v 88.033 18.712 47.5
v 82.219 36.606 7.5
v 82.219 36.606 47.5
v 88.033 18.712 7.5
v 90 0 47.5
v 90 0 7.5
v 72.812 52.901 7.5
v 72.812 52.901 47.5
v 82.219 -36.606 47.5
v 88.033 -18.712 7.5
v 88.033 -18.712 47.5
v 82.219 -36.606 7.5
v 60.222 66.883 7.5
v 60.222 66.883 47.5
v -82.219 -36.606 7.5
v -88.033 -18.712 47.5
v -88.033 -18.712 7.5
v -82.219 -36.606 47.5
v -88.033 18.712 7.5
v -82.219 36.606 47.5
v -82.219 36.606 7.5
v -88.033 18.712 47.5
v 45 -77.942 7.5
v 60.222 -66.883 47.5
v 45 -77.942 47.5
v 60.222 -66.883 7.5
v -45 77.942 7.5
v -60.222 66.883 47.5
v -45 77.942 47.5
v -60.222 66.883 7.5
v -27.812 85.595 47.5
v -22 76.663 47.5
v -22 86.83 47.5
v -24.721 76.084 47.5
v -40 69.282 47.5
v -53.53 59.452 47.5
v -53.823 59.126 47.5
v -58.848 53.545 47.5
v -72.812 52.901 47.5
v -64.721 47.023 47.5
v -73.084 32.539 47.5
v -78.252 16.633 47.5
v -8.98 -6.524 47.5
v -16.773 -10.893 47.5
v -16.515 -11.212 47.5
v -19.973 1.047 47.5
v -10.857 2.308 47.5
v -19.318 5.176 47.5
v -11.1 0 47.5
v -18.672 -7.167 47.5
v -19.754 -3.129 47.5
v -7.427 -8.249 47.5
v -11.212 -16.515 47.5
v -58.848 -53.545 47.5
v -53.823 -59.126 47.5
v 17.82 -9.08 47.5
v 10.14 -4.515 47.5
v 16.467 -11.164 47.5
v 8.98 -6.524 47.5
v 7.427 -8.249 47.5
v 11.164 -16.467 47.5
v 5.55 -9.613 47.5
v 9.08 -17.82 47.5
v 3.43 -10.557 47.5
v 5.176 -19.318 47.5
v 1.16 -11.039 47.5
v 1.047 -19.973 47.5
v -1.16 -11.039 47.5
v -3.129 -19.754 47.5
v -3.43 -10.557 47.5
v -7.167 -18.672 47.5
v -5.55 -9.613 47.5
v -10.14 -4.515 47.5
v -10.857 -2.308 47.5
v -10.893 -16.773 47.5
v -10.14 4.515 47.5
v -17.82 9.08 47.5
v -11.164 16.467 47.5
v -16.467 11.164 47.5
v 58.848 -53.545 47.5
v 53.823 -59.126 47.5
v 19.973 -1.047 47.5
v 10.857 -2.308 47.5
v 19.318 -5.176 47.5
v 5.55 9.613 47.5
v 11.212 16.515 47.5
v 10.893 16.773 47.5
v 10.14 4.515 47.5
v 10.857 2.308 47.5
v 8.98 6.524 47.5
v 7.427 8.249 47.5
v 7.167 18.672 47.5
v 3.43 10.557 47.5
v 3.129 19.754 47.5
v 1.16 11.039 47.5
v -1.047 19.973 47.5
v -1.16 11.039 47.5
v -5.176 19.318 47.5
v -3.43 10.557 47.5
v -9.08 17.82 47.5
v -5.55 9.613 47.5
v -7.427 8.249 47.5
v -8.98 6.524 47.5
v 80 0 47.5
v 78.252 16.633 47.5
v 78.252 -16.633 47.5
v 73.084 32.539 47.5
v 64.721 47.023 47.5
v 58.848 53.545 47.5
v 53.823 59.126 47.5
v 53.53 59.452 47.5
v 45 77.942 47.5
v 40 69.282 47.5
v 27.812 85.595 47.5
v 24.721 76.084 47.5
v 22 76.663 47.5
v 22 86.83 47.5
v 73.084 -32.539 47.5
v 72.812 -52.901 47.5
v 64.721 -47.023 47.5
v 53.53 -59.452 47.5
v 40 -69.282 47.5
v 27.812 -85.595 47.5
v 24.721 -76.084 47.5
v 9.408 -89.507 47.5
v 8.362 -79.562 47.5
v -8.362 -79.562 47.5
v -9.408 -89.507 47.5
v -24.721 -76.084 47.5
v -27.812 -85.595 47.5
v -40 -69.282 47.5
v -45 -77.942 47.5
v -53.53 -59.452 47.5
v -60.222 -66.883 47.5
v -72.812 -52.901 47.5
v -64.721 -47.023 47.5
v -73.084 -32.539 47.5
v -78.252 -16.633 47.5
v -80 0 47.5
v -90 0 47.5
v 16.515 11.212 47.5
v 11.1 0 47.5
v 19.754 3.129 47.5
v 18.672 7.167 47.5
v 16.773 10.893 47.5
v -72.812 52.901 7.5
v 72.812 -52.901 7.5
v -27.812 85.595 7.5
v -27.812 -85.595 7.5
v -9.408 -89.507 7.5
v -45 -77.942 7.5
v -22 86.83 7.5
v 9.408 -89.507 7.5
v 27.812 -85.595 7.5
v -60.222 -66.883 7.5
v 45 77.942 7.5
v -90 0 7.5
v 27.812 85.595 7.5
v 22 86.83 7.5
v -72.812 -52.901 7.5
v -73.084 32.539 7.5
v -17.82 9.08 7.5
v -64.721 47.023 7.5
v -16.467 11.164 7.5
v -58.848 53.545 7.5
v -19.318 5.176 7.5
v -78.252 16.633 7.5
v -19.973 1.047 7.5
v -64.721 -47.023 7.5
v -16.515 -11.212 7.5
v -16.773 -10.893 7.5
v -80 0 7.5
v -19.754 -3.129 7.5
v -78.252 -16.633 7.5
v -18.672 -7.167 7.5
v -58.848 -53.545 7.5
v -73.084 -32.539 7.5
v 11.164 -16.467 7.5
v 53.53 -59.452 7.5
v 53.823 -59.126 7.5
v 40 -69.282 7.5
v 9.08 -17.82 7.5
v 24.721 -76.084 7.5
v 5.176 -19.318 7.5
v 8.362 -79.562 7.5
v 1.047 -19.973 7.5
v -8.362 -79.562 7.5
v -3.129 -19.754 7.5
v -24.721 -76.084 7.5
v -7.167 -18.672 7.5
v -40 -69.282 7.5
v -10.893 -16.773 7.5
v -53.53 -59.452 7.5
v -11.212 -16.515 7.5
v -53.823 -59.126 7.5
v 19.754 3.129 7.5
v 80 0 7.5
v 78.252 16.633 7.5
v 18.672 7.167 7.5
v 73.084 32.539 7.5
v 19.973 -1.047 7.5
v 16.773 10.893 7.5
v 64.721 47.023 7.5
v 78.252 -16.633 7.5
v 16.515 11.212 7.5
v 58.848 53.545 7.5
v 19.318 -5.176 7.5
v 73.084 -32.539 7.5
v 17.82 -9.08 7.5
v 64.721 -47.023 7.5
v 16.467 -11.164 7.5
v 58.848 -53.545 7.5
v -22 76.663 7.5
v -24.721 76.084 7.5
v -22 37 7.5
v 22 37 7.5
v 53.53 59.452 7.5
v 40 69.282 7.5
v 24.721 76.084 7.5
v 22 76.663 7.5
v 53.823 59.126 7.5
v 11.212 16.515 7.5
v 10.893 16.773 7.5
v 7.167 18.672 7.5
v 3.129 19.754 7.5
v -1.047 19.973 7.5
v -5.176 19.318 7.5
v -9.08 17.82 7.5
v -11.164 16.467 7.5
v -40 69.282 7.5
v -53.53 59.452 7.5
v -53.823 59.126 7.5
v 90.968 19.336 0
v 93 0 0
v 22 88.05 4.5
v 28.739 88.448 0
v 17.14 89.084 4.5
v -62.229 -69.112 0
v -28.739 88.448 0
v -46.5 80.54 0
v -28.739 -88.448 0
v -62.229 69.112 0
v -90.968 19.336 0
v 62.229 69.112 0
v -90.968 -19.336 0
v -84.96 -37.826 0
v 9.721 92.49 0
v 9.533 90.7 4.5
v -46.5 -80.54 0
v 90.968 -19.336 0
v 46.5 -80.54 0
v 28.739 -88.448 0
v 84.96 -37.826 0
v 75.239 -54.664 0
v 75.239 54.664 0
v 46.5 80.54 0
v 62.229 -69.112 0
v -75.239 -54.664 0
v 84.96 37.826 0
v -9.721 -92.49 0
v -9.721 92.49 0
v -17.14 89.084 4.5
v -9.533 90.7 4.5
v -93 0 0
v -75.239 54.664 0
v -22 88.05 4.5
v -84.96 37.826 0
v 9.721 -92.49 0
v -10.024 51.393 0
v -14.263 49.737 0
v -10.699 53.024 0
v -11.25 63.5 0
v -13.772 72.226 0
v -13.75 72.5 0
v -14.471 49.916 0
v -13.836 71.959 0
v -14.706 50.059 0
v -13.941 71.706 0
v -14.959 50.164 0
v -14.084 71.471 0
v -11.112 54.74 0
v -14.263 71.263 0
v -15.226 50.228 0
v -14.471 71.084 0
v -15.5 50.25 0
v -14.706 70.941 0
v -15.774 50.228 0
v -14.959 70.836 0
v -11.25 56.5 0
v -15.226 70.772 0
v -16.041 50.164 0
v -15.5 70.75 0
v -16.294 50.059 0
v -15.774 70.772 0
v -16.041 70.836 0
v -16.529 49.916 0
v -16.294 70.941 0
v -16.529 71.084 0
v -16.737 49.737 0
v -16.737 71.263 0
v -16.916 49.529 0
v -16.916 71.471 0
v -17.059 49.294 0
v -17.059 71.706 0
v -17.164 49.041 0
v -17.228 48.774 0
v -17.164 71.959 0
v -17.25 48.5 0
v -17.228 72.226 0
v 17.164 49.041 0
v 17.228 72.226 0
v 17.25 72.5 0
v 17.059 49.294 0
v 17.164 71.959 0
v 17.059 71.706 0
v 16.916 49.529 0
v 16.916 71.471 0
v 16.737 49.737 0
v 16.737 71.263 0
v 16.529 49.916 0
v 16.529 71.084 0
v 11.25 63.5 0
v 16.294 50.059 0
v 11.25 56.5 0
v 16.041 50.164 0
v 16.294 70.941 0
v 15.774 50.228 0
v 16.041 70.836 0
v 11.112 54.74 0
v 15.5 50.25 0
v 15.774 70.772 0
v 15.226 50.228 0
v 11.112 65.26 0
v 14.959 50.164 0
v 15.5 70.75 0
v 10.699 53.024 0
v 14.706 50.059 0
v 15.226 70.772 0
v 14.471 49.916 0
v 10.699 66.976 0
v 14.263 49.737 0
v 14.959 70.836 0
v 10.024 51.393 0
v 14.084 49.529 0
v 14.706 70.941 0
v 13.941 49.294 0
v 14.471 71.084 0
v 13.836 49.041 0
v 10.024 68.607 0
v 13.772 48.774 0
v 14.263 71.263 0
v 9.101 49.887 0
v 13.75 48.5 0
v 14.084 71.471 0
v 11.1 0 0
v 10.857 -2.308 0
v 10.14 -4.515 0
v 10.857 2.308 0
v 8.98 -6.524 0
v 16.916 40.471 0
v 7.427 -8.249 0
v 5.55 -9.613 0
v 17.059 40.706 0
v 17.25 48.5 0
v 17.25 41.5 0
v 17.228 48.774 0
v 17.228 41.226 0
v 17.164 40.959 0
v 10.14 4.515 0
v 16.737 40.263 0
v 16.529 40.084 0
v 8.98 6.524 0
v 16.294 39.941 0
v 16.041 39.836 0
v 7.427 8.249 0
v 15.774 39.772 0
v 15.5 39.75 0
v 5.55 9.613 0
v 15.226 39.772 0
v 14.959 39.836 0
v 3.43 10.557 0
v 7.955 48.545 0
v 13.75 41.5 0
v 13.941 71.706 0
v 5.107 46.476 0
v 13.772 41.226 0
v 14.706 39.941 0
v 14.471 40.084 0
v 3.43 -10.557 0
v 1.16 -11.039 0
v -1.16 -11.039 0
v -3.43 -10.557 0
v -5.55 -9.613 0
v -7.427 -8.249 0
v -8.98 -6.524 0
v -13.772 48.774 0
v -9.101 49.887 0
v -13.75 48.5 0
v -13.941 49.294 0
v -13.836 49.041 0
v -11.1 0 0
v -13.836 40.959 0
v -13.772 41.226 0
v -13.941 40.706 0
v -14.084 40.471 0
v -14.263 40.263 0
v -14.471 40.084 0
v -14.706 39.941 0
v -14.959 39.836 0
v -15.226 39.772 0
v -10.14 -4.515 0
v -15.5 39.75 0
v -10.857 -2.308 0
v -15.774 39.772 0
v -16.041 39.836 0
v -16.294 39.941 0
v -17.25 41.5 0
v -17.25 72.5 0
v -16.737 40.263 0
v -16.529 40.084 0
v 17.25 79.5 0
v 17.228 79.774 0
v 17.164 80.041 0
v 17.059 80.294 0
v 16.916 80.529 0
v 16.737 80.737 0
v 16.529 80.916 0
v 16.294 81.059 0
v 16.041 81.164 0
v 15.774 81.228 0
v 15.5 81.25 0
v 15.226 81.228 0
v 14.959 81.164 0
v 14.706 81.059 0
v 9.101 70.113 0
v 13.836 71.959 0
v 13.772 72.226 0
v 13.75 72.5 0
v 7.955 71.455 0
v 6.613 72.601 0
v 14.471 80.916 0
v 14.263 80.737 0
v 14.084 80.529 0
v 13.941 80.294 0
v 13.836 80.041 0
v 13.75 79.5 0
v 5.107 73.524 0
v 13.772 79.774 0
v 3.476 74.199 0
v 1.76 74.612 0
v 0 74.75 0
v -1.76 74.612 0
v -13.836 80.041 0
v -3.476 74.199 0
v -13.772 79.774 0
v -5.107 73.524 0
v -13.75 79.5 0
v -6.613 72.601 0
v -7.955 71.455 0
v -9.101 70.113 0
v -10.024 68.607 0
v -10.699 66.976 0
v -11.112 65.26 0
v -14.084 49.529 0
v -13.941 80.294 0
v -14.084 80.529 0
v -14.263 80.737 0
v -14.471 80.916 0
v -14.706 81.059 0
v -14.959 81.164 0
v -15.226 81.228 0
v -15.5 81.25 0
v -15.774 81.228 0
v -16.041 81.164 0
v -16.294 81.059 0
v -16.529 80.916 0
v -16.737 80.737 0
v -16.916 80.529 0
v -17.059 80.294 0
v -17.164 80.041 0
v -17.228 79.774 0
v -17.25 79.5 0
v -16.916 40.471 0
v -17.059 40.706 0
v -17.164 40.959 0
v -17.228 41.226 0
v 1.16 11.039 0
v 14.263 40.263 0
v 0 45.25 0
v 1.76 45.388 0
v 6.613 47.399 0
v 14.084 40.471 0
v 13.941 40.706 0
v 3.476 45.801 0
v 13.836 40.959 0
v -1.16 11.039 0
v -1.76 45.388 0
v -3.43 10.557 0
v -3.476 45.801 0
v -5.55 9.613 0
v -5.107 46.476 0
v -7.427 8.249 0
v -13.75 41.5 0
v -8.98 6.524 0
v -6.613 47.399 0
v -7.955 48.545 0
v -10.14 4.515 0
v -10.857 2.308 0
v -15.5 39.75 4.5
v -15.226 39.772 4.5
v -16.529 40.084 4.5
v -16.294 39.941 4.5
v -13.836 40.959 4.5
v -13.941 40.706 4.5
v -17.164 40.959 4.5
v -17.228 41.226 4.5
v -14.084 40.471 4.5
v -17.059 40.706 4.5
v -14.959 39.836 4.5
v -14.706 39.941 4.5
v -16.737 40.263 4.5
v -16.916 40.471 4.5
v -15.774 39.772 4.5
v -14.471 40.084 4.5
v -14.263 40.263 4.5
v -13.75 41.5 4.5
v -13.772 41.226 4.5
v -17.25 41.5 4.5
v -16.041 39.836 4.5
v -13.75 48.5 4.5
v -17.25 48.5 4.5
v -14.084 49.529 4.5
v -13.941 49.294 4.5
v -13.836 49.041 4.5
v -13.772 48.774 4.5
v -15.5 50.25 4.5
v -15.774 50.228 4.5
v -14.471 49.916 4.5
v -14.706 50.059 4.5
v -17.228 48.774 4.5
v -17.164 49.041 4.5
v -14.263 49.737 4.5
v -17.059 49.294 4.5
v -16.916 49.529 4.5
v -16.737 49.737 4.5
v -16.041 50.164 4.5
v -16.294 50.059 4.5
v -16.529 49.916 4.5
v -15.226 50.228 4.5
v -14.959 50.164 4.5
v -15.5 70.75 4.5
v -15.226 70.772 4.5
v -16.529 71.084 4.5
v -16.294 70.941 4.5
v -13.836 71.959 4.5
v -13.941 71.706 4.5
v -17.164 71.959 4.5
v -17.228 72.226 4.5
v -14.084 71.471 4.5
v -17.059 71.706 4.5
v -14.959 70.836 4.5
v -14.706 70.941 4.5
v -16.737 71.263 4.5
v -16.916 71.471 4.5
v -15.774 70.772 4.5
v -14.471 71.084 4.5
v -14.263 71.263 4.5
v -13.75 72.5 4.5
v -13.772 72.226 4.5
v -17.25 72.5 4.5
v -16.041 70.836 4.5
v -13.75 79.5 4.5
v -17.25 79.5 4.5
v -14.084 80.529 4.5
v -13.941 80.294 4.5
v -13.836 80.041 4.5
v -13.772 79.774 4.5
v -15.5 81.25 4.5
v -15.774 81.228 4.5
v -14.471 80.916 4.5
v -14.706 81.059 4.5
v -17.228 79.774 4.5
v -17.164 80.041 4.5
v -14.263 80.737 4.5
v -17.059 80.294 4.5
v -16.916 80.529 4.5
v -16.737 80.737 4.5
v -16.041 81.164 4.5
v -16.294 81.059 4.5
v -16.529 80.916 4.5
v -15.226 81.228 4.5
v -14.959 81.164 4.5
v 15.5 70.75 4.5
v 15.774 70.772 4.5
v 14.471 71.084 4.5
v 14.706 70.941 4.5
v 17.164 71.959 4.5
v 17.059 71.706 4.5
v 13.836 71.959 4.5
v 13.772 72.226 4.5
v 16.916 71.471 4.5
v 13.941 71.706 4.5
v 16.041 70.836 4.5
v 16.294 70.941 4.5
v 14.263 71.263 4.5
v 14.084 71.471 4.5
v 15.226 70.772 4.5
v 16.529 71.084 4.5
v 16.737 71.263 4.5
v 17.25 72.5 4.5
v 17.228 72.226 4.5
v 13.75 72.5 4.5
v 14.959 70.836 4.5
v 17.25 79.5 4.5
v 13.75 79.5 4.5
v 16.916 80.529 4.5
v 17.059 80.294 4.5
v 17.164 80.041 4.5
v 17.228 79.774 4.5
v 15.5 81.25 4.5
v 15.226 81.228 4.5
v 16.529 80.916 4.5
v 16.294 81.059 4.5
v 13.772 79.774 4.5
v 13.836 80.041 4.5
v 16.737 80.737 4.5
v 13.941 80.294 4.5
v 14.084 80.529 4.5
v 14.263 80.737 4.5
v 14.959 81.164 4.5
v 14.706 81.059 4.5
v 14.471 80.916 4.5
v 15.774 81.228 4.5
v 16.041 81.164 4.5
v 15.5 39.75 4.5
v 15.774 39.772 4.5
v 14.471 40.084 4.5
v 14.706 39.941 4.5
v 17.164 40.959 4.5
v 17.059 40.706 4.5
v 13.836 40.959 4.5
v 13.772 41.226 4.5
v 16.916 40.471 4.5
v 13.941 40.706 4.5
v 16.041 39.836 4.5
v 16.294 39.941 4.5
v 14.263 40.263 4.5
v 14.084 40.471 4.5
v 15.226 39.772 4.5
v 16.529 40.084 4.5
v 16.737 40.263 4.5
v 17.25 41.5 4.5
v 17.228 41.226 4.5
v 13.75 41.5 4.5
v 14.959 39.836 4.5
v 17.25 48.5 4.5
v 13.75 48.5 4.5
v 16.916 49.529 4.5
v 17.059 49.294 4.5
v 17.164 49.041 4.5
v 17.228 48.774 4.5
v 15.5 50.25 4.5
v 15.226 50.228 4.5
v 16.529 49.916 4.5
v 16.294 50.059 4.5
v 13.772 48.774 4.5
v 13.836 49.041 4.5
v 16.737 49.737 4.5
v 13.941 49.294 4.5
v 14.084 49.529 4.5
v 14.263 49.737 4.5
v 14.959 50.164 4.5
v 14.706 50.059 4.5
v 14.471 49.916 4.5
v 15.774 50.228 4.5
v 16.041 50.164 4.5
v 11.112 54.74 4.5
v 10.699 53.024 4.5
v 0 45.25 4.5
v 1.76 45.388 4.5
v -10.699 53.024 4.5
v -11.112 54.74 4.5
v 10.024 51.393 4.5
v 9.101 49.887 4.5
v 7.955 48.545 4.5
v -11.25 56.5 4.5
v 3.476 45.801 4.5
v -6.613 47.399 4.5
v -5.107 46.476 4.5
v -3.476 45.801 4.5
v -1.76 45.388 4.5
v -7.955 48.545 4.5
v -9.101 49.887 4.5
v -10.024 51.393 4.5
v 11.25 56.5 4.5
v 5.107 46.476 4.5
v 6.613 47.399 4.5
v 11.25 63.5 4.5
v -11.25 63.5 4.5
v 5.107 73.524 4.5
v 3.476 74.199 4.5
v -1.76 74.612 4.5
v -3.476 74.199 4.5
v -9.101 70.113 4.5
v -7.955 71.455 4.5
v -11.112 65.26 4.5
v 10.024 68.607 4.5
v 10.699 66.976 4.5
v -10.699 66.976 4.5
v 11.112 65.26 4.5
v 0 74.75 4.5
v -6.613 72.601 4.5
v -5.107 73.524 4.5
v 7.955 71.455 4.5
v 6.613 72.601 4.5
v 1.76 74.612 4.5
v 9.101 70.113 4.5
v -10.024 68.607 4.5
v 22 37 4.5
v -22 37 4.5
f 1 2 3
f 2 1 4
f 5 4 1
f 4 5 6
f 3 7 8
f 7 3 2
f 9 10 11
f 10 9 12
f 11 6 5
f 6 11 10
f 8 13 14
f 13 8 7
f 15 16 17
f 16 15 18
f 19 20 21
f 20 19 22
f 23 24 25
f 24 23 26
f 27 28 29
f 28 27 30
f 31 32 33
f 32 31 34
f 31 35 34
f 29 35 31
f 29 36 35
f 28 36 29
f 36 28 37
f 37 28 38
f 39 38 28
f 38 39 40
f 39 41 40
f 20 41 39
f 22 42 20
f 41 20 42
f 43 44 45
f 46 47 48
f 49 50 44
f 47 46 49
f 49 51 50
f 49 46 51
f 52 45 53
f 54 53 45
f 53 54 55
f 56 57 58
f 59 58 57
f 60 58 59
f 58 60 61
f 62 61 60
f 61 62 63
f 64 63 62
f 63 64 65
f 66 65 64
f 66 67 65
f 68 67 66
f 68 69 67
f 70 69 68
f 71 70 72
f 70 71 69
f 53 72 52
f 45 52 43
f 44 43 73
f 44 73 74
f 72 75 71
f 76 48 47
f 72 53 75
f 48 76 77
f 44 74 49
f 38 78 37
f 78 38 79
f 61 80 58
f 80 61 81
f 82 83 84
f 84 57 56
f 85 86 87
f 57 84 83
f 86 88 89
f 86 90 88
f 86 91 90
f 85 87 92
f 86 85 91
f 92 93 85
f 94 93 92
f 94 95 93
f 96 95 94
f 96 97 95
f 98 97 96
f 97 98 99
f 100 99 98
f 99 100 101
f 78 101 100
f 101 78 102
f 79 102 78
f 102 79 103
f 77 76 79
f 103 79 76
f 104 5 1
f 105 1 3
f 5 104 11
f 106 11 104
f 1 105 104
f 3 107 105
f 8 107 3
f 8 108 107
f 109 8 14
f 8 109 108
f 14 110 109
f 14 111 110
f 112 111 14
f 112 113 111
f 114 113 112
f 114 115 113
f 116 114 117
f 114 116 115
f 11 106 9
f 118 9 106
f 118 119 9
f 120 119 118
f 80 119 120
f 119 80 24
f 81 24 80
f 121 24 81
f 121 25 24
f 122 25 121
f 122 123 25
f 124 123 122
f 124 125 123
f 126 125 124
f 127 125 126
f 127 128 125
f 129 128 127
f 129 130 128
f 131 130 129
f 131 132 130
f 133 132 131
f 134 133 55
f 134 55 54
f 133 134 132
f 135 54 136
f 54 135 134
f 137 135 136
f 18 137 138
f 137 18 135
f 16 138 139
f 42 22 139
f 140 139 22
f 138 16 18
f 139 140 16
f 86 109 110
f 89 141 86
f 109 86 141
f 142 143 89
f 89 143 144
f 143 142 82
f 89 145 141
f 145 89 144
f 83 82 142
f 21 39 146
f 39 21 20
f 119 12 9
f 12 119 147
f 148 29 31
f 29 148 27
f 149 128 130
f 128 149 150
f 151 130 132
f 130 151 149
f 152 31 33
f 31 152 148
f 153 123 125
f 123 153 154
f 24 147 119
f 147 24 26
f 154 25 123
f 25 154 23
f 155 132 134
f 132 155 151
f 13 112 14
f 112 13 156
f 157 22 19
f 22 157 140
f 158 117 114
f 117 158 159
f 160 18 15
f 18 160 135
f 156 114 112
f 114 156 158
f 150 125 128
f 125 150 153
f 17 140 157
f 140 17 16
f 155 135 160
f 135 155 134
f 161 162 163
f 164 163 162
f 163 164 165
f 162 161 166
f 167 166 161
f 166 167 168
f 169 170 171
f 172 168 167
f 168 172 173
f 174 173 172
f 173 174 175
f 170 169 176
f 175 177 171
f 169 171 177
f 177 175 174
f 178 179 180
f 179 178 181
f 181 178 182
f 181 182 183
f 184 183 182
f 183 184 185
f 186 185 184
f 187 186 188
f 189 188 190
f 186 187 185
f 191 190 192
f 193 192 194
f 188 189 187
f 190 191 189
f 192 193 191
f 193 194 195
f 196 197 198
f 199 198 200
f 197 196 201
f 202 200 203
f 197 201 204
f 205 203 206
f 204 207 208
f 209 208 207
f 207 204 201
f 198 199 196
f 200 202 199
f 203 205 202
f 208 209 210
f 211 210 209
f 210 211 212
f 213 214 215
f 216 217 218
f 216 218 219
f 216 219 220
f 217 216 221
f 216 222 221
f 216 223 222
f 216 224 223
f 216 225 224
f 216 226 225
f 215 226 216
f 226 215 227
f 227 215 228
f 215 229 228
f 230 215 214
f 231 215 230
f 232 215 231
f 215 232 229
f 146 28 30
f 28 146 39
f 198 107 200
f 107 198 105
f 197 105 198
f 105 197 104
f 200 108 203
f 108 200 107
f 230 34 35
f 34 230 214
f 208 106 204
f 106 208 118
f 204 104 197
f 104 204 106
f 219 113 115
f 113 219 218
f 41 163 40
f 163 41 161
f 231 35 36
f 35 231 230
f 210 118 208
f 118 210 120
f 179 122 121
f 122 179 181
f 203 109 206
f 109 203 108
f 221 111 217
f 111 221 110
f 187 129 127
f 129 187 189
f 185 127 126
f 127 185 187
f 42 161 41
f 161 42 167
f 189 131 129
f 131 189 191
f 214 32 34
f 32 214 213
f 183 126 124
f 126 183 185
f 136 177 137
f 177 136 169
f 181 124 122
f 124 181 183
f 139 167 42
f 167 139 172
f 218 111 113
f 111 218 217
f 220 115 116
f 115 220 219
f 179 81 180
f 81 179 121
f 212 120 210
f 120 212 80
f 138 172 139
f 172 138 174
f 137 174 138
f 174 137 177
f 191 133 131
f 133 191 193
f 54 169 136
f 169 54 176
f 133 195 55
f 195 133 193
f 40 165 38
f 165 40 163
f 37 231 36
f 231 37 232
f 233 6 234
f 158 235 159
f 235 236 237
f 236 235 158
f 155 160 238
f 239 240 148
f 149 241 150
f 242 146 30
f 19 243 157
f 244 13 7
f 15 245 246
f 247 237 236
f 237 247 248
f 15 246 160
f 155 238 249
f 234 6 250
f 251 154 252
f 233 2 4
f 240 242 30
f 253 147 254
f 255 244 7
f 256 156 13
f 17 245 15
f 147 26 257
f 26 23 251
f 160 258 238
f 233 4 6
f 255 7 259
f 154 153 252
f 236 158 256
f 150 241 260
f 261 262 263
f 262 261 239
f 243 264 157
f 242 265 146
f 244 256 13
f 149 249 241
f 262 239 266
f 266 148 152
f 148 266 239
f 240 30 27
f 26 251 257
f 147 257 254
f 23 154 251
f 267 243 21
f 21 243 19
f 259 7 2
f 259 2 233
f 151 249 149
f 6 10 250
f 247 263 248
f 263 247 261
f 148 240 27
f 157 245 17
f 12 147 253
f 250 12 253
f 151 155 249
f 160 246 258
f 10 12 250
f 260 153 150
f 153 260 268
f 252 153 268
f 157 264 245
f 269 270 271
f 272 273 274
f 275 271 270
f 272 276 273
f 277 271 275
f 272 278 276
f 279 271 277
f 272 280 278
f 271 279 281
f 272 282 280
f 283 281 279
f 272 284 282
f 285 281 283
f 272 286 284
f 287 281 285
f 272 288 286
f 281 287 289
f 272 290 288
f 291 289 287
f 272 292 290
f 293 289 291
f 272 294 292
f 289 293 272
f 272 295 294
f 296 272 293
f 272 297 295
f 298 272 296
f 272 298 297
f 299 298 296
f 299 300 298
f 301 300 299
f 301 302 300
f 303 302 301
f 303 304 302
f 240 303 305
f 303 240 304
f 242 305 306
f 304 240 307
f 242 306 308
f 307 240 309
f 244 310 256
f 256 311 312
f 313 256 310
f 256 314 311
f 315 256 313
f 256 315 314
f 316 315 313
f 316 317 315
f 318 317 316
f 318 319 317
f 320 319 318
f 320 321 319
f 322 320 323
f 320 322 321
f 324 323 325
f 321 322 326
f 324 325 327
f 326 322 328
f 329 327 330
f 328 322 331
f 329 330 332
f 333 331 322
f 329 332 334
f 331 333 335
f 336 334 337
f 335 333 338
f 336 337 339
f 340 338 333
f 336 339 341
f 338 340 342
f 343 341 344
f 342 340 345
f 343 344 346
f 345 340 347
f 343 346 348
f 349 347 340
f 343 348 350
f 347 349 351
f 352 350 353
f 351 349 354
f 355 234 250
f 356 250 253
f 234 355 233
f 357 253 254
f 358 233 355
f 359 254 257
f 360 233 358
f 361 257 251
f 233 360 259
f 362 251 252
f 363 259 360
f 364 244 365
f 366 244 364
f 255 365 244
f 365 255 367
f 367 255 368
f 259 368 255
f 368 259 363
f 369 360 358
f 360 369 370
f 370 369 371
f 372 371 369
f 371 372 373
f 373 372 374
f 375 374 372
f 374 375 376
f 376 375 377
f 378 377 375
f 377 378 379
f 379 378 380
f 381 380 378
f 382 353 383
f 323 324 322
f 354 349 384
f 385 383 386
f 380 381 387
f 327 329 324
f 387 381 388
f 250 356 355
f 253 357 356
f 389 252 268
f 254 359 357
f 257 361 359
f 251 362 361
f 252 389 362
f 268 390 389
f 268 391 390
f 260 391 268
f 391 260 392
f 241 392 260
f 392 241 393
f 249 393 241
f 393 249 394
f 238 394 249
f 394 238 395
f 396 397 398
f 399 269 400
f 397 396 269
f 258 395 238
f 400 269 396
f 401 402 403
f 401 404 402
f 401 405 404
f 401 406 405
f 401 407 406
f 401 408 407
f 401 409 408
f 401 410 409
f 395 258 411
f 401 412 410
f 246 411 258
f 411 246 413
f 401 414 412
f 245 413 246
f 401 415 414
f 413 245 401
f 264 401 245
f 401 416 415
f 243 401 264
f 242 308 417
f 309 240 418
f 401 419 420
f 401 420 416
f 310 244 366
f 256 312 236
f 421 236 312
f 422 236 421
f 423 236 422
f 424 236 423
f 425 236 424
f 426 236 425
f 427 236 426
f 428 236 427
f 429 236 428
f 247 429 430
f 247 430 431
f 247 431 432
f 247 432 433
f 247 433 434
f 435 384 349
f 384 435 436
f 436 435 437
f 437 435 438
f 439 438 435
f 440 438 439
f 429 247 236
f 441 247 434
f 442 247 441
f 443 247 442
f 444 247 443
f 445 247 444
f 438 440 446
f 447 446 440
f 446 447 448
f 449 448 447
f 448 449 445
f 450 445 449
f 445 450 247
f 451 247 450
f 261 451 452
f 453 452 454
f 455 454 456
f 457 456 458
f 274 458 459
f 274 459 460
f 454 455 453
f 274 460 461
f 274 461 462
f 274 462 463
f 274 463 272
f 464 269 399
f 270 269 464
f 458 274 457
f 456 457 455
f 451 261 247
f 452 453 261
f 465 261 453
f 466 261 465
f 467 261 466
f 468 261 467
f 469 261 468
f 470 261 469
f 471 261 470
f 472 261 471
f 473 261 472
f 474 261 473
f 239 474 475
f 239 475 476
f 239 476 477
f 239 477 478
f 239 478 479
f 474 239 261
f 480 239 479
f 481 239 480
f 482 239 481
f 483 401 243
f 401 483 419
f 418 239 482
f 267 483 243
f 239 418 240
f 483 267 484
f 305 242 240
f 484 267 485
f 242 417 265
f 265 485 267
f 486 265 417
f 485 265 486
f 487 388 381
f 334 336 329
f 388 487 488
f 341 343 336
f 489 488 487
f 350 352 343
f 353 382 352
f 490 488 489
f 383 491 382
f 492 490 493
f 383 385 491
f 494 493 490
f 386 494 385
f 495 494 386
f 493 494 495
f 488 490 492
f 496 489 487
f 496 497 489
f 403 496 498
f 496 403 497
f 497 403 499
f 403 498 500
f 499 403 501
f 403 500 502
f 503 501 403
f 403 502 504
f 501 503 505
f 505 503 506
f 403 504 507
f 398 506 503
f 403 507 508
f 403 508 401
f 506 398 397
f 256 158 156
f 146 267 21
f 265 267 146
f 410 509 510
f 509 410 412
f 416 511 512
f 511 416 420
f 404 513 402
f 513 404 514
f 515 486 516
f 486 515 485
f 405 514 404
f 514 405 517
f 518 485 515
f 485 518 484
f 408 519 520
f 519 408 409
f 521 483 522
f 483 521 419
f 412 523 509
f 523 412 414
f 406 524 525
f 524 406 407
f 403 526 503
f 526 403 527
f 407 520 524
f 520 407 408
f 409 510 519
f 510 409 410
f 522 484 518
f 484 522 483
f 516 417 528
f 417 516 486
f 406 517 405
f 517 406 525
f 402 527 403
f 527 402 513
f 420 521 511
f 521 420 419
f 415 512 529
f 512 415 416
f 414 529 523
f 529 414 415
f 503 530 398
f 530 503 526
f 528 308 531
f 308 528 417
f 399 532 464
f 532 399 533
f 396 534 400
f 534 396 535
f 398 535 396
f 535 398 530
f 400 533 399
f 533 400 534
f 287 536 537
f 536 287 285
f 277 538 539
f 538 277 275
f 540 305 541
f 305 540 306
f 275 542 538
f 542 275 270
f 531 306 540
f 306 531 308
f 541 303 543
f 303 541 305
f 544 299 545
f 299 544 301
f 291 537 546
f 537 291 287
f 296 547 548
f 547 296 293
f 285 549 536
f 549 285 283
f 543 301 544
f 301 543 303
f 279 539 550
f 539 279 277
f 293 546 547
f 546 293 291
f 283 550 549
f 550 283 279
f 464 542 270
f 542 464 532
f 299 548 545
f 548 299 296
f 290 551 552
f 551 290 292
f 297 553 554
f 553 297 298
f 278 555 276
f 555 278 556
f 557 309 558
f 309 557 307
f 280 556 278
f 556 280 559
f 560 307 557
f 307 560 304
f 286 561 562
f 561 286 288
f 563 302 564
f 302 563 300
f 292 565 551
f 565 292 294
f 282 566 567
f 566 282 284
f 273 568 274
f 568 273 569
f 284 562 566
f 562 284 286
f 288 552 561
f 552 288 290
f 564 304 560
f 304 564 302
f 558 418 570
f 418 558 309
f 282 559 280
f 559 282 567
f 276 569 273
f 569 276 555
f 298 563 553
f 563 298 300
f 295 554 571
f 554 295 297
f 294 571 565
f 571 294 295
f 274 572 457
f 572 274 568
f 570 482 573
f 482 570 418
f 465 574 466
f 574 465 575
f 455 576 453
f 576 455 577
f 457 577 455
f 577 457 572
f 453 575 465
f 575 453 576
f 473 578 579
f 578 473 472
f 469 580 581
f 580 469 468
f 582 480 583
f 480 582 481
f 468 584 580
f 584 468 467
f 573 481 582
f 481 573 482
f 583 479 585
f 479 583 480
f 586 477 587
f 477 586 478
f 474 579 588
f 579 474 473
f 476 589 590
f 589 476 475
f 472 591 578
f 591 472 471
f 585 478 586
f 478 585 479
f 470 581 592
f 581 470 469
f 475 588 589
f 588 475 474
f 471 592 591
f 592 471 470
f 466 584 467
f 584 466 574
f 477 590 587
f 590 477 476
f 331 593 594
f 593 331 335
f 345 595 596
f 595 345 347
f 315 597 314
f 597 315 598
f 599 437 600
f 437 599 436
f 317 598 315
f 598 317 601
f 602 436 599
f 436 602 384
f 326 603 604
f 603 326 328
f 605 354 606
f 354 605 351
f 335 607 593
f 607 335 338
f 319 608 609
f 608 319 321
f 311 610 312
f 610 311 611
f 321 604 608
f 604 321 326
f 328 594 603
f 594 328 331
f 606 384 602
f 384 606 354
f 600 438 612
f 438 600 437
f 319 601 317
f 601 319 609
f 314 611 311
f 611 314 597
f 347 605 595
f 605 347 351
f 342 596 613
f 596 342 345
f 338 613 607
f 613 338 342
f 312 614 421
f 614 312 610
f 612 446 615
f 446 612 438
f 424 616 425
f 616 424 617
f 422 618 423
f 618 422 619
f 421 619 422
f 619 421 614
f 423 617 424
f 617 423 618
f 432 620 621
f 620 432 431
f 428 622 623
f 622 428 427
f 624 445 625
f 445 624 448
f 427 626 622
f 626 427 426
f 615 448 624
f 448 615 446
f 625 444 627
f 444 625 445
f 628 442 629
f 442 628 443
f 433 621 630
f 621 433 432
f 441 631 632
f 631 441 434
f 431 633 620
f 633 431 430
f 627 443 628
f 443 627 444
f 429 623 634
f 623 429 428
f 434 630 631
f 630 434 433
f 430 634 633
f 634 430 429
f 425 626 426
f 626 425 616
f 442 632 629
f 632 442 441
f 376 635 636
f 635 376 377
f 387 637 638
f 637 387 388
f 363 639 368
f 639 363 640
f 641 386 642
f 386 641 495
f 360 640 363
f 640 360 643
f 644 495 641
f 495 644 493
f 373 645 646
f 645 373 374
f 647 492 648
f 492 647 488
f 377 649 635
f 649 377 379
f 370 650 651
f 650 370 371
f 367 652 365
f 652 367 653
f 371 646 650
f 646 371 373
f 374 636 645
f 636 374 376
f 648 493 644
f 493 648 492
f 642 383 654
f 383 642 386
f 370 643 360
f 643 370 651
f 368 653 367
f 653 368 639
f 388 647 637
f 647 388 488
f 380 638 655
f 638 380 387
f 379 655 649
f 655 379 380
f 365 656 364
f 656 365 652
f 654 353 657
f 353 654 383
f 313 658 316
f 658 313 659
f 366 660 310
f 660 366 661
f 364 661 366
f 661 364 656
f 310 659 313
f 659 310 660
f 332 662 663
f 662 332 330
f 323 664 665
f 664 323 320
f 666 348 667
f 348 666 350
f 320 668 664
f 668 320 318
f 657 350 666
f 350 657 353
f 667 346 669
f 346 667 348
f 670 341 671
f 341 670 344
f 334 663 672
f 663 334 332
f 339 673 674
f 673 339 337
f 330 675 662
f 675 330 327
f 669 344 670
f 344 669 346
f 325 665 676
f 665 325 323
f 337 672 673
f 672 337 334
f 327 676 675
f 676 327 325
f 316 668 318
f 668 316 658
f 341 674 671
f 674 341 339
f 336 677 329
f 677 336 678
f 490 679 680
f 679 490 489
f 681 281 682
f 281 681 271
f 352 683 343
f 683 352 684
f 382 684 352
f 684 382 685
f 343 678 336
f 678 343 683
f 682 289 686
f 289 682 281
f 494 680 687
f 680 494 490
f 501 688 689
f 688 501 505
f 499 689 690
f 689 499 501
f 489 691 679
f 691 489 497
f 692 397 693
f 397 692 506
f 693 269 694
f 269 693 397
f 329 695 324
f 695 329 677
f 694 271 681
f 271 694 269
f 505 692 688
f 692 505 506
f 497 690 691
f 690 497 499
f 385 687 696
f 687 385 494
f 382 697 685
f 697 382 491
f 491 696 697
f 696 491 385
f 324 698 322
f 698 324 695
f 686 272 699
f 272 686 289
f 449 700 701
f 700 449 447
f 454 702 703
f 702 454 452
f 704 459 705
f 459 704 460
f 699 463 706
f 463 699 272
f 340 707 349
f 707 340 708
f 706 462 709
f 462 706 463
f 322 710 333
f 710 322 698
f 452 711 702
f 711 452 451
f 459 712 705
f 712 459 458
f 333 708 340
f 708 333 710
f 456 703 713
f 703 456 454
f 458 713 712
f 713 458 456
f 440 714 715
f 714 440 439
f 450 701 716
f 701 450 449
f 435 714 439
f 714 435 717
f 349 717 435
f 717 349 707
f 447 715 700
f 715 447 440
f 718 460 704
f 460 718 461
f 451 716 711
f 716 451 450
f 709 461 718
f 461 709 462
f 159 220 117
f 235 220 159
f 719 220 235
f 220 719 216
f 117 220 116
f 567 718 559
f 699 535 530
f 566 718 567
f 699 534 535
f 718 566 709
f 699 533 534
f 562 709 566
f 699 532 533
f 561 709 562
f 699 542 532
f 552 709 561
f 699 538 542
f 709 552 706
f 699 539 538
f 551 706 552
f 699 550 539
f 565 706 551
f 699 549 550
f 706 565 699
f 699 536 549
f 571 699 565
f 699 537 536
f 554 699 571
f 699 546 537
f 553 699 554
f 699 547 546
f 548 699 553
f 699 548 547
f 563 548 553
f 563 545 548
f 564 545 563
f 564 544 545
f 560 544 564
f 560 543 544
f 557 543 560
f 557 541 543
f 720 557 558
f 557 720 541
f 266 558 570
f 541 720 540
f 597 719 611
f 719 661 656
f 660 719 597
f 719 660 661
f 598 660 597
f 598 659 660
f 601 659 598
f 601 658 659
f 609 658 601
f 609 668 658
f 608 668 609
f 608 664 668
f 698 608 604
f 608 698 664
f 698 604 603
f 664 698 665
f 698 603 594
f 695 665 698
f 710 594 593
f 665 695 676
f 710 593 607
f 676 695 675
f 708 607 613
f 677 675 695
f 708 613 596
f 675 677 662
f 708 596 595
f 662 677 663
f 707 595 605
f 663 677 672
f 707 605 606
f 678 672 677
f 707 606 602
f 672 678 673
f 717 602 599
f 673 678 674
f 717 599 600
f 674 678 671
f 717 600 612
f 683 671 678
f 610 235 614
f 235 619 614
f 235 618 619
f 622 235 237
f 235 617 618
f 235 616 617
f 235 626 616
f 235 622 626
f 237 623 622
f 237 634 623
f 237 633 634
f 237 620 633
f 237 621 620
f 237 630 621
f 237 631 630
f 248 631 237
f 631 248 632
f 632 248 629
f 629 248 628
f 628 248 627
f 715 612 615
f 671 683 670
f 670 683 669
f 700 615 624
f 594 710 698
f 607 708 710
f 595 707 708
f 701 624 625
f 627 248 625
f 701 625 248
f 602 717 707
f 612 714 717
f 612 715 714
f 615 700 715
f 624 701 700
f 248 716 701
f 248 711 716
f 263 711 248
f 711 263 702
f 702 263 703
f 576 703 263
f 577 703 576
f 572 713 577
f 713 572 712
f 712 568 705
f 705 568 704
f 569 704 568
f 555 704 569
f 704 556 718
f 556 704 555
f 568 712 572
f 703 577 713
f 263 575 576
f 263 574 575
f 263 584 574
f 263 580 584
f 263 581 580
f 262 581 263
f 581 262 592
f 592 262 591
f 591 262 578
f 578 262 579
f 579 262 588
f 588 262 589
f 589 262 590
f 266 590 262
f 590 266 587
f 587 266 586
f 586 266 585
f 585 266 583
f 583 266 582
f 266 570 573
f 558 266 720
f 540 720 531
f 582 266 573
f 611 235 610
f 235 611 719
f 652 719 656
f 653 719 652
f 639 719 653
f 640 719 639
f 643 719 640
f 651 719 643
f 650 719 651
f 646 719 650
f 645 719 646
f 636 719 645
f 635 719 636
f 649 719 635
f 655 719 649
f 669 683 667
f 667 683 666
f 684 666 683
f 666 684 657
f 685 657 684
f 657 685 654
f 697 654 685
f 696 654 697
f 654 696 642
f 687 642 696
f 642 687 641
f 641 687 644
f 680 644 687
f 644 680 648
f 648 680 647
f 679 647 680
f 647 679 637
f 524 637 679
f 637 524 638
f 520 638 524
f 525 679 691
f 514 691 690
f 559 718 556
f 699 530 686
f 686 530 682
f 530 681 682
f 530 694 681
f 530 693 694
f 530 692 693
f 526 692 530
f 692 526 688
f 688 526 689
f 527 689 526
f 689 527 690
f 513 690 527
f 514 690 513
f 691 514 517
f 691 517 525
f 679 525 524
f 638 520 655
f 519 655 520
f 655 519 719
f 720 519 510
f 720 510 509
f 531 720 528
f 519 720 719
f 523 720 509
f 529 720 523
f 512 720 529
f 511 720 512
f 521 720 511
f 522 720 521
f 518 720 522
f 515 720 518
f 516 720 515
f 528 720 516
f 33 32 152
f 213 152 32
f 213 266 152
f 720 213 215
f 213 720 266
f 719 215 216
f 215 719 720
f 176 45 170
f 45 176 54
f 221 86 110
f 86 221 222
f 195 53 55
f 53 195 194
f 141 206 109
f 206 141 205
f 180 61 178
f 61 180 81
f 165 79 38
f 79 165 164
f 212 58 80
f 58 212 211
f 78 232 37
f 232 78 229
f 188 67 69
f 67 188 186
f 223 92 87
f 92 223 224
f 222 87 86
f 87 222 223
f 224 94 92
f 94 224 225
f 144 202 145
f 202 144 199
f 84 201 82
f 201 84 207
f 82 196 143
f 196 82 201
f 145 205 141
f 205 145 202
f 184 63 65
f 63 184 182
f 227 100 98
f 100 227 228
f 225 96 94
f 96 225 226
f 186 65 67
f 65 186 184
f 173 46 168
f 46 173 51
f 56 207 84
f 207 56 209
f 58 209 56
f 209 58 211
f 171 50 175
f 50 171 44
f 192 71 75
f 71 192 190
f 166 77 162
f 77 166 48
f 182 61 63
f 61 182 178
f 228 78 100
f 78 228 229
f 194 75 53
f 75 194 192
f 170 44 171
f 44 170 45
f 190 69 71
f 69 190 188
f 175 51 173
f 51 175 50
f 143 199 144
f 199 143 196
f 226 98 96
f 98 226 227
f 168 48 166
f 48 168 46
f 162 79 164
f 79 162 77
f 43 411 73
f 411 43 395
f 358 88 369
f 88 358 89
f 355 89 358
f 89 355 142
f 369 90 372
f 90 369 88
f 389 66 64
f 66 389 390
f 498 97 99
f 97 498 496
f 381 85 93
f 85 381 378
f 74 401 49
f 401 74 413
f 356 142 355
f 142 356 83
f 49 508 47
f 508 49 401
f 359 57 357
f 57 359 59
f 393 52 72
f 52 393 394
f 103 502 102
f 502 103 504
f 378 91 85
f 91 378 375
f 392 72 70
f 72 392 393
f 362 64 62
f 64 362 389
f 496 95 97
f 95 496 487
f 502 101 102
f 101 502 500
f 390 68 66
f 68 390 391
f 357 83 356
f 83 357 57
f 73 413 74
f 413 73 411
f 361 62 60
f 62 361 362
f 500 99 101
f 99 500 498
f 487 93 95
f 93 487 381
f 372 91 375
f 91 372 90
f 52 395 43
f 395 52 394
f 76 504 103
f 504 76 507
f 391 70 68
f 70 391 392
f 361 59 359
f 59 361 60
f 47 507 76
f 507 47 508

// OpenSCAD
difference() {
    union() {
        difference() {
            base();
            translate([-22, 37, 4.5]) stepperslide();
        }

        rotate(45) bars();
    }
    cylinder(47.5, 11.1, 11.1);
}
module bars() {
    translate([0,0,27.5]) cube([170, 7.5, 40], true);
    rotate(90) translate([0,0,27.5]) cube([170, 7.5, 40], true);
    
    cylinder(47.5, 20, 20);;
}

module base() {
    translate([0,0,7.5]) difference() {
        cylinder(40, r=90);
        cylinder(40, r=80);
    }
    cylinder(7.5, 93, 90);
}

module stepperslide() {
    // stepper size is 42.3 max
    cube([44, 56, 43]);
    translate([6.5, 4.5, -5]) holes();

}
module holes() {
    translate([0, 0, 0]) hole();
    translate([0, 31, 0]) hole();
    translate([31, 31, 0]) hole();    
    translate([31, 0, 0]) hole();
    translate([15.5, 15, 0]) bighole();
}

module hole() {
    union() {
        cylinder(10, d=3.5, $fn=40);
        translate([-1.75, 0, 0]) cube([3.5, 7, 10]);
        translate([0, 7, 0]) cylinder(10, d=3.5, $fn=40);   
    }
}

module bighole() {
    union() {
        cylinder(10, d=22.5, $fn=40);
        translate([-11.25, 0, 0]) cube([22.5, 7, 10]);
        translate([0, 7, 0]) cylinder(10, d=22.5, $fn=40);   
    }
}
